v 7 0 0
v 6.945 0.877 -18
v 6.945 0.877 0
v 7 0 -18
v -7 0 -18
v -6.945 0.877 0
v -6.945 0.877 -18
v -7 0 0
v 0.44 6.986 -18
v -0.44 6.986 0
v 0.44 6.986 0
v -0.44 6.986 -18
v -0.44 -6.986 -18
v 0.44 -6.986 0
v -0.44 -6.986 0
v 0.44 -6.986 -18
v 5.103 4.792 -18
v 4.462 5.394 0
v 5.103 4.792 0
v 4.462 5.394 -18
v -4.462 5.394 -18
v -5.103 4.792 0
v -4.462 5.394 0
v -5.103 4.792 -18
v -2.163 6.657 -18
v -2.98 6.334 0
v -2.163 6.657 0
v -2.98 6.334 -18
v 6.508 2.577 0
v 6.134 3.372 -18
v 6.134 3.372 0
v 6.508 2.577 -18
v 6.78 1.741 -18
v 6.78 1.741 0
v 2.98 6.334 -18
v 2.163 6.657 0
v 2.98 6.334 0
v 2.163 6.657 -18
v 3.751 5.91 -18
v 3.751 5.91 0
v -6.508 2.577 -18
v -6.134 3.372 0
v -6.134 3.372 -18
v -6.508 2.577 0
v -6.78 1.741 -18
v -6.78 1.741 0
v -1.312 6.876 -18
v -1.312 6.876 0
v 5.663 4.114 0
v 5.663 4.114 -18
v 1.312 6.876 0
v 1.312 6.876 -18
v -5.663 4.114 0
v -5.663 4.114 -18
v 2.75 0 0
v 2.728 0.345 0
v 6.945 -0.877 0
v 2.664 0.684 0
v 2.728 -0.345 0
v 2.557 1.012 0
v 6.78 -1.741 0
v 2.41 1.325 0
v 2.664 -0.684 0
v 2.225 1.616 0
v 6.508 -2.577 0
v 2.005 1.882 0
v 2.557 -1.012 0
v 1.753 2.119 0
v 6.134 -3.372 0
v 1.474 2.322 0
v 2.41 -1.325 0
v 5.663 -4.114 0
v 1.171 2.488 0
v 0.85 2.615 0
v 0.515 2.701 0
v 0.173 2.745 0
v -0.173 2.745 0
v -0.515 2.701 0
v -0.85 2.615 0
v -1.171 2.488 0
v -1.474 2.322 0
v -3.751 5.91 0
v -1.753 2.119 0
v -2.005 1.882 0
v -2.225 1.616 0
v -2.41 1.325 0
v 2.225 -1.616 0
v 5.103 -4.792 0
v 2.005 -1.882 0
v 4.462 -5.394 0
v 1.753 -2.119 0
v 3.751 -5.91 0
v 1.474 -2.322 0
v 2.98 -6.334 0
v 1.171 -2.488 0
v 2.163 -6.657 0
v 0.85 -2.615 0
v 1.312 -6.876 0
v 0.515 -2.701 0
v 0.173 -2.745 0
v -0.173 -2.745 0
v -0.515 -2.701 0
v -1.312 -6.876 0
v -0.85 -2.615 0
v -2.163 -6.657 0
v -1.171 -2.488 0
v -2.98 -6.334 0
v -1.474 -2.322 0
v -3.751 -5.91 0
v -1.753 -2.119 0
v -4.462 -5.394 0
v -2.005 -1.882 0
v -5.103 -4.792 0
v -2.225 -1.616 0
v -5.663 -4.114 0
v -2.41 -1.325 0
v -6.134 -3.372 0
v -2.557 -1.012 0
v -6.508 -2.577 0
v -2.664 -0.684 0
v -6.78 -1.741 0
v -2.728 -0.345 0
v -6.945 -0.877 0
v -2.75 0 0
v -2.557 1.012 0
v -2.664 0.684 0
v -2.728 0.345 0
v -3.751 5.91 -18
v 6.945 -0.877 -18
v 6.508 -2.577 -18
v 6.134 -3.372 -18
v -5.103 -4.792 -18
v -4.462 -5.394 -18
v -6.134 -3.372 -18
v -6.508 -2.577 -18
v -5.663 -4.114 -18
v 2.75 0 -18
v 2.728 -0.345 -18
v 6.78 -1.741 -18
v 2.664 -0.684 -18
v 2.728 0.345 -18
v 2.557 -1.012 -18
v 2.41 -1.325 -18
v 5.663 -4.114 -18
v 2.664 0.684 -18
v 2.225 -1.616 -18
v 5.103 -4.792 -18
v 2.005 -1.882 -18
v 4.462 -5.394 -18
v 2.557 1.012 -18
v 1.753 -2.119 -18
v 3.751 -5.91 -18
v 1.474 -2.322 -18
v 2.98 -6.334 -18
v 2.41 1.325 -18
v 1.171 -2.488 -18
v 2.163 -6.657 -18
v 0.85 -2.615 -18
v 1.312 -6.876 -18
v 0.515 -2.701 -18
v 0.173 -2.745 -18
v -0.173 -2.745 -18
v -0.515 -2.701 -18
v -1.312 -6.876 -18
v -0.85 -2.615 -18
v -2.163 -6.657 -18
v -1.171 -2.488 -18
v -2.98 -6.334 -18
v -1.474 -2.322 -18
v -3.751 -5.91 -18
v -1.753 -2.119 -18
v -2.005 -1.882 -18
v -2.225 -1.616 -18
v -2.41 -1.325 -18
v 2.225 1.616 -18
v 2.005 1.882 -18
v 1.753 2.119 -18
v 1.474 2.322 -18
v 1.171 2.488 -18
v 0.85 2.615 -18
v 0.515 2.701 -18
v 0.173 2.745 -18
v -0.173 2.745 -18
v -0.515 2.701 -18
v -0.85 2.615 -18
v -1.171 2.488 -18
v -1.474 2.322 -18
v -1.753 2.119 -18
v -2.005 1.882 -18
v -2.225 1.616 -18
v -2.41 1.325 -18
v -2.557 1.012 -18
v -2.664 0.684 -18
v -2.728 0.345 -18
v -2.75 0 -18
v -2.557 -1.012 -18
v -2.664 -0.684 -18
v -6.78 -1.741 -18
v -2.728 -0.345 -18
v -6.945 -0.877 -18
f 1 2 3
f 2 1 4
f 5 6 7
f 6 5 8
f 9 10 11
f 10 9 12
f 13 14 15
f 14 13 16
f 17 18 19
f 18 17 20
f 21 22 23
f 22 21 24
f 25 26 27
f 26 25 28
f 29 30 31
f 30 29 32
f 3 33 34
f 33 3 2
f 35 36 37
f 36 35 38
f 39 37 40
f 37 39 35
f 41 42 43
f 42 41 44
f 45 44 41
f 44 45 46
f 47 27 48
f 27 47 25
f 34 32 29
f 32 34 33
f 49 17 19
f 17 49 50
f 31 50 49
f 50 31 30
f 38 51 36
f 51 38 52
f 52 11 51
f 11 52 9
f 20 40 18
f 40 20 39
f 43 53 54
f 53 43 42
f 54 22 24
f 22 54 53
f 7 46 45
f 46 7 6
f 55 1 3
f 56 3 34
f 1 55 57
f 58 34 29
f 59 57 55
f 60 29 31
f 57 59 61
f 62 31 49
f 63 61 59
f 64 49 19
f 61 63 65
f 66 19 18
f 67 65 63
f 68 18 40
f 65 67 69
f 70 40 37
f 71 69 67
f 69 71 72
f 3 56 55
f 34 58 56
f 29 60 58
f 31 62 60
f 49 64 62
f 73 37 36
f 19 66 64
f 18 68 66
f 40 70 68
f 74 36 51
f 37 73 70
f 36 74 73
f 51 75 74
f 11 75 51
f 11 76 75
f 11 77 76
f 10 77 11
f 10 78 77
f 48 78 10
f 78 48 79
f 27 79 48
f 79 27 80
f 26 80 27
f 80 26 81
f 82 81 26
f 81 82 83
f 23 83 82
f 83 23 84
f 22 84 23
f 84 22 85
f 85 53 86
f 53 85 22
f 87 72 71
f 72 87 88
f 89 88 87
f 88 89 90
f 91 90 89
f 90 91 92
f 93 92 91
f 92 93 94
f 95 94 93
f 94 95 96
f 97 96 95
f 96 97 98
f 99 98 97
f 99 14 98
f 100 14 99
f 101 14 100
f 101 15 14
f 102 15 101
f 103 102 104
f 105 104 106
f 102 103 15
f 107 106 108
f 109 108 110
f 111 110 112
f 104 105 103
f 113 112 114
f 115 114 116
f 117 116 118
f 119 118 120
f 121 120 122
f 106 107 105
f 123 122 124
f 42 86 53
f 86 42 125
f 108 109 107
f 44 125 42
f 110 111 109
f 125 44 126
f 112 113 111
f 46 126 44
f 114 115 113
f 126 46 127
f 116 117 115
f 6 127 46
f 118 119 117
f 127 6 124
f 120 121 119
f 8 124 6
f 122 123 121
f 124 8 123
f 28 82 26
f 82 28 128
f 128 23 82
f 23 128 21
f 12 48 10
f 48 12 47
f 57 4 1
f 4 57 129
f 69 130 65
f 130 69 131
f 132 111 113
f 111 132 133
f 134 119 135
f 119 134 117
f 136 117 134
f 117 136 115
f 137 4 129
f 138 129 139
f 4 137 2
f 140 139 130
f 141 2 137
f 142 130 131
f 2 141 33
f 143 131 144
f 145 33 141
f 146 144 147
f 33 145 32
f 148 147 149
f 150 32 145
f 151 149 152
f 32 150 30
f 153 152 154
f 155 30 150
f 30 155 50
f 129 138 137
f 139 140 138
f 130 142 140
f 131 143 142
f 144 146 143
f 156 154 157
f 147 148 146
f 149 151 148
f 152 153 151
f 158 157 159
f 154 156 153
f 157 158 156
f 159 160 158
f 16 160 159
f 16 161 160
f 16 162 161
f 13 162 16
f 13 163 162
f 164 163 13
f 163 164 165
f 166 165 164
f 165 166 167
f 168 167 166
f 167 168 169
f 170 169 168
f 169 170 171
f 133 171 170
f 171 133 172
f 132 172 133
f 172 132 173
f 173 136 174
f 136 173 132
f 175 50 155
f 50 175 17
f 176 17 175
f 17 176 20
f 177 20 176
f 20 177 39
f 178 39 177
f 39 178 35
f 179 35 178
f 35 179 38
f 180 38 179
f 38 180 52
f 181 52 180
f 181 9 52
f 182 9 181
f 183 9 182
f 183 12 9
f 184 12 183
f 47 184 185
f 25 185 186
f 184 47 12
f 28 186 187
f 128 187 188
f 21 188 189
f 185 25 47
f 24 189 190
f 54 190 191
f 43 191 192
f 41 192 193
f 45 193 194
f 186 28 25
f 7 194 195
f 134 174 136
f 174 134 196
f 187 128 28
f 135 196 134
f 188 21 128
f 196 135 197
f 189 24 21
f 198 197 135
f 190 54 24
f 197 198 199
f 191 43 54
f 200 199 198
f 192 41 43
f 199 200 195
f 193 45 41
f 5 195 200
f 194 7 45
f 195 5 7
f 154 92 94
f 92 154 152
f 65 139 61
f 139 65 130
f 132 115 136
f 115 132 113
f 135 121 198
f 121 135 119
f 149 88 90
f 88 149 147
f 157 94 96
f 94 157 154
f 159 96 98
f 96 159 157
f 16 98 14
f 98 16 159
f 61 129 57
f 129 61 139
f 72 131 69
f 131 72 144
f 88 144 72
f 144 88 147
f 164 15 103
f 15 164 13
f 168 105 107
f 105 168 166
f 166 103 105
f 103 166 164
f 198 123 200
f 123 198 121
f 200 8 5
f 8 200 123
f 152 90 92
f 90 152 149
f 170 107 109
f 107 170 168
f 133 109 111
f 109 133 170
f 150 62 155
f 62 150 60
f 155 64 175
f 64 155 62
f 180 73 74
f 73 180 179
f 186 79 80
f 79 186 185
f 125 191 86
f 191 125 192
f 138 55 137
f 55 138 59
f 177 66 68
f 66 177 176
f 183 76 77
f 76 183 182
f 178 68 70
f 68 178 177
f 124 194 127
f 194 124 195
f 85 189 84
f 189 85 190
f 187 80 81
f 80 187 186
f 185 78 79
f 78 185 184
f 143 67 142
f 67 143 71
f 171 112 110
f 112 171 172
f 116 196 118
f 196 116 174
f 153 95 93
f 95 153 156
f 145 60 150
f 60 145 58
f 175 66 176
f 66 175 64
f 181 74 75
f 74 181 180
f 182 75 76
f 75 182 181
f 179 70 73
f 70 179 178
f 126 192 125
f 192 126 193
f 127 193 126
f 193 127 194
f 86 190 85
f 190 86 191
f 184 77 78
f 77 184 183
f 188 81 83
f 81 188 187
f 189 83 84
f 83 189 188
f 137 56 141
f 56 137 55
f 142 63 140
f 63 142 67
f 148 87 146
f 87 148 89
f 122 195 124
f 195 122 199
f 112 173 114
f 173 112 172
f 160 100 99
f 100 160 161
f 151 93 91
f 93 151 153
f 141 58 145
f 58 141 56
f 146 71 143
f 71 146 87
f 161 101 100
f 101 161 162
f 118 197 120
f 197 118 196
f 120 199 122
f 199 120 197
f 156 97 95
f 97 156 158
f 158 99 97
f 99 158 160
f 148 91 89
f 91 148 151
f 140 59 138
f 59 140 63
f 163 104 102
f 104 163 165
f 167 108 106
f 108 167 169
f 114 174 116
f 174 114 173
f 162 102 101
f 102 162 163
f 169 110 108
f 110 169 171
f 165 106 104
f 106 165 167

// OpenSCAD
$fn = 50;


difference() {
	union() {
		translate(v = [0, 0, -18.0000000000]) {
			cylinder(h = 18, r = 7.0000000000);
		}
		cylinder(h = 0, r = 16.0000000000);
	}
	union() {
		#translate(v = [0, 0, -18]) {
			cylinder(h = 18, r = 2.7500000000);
		}
	}
}
